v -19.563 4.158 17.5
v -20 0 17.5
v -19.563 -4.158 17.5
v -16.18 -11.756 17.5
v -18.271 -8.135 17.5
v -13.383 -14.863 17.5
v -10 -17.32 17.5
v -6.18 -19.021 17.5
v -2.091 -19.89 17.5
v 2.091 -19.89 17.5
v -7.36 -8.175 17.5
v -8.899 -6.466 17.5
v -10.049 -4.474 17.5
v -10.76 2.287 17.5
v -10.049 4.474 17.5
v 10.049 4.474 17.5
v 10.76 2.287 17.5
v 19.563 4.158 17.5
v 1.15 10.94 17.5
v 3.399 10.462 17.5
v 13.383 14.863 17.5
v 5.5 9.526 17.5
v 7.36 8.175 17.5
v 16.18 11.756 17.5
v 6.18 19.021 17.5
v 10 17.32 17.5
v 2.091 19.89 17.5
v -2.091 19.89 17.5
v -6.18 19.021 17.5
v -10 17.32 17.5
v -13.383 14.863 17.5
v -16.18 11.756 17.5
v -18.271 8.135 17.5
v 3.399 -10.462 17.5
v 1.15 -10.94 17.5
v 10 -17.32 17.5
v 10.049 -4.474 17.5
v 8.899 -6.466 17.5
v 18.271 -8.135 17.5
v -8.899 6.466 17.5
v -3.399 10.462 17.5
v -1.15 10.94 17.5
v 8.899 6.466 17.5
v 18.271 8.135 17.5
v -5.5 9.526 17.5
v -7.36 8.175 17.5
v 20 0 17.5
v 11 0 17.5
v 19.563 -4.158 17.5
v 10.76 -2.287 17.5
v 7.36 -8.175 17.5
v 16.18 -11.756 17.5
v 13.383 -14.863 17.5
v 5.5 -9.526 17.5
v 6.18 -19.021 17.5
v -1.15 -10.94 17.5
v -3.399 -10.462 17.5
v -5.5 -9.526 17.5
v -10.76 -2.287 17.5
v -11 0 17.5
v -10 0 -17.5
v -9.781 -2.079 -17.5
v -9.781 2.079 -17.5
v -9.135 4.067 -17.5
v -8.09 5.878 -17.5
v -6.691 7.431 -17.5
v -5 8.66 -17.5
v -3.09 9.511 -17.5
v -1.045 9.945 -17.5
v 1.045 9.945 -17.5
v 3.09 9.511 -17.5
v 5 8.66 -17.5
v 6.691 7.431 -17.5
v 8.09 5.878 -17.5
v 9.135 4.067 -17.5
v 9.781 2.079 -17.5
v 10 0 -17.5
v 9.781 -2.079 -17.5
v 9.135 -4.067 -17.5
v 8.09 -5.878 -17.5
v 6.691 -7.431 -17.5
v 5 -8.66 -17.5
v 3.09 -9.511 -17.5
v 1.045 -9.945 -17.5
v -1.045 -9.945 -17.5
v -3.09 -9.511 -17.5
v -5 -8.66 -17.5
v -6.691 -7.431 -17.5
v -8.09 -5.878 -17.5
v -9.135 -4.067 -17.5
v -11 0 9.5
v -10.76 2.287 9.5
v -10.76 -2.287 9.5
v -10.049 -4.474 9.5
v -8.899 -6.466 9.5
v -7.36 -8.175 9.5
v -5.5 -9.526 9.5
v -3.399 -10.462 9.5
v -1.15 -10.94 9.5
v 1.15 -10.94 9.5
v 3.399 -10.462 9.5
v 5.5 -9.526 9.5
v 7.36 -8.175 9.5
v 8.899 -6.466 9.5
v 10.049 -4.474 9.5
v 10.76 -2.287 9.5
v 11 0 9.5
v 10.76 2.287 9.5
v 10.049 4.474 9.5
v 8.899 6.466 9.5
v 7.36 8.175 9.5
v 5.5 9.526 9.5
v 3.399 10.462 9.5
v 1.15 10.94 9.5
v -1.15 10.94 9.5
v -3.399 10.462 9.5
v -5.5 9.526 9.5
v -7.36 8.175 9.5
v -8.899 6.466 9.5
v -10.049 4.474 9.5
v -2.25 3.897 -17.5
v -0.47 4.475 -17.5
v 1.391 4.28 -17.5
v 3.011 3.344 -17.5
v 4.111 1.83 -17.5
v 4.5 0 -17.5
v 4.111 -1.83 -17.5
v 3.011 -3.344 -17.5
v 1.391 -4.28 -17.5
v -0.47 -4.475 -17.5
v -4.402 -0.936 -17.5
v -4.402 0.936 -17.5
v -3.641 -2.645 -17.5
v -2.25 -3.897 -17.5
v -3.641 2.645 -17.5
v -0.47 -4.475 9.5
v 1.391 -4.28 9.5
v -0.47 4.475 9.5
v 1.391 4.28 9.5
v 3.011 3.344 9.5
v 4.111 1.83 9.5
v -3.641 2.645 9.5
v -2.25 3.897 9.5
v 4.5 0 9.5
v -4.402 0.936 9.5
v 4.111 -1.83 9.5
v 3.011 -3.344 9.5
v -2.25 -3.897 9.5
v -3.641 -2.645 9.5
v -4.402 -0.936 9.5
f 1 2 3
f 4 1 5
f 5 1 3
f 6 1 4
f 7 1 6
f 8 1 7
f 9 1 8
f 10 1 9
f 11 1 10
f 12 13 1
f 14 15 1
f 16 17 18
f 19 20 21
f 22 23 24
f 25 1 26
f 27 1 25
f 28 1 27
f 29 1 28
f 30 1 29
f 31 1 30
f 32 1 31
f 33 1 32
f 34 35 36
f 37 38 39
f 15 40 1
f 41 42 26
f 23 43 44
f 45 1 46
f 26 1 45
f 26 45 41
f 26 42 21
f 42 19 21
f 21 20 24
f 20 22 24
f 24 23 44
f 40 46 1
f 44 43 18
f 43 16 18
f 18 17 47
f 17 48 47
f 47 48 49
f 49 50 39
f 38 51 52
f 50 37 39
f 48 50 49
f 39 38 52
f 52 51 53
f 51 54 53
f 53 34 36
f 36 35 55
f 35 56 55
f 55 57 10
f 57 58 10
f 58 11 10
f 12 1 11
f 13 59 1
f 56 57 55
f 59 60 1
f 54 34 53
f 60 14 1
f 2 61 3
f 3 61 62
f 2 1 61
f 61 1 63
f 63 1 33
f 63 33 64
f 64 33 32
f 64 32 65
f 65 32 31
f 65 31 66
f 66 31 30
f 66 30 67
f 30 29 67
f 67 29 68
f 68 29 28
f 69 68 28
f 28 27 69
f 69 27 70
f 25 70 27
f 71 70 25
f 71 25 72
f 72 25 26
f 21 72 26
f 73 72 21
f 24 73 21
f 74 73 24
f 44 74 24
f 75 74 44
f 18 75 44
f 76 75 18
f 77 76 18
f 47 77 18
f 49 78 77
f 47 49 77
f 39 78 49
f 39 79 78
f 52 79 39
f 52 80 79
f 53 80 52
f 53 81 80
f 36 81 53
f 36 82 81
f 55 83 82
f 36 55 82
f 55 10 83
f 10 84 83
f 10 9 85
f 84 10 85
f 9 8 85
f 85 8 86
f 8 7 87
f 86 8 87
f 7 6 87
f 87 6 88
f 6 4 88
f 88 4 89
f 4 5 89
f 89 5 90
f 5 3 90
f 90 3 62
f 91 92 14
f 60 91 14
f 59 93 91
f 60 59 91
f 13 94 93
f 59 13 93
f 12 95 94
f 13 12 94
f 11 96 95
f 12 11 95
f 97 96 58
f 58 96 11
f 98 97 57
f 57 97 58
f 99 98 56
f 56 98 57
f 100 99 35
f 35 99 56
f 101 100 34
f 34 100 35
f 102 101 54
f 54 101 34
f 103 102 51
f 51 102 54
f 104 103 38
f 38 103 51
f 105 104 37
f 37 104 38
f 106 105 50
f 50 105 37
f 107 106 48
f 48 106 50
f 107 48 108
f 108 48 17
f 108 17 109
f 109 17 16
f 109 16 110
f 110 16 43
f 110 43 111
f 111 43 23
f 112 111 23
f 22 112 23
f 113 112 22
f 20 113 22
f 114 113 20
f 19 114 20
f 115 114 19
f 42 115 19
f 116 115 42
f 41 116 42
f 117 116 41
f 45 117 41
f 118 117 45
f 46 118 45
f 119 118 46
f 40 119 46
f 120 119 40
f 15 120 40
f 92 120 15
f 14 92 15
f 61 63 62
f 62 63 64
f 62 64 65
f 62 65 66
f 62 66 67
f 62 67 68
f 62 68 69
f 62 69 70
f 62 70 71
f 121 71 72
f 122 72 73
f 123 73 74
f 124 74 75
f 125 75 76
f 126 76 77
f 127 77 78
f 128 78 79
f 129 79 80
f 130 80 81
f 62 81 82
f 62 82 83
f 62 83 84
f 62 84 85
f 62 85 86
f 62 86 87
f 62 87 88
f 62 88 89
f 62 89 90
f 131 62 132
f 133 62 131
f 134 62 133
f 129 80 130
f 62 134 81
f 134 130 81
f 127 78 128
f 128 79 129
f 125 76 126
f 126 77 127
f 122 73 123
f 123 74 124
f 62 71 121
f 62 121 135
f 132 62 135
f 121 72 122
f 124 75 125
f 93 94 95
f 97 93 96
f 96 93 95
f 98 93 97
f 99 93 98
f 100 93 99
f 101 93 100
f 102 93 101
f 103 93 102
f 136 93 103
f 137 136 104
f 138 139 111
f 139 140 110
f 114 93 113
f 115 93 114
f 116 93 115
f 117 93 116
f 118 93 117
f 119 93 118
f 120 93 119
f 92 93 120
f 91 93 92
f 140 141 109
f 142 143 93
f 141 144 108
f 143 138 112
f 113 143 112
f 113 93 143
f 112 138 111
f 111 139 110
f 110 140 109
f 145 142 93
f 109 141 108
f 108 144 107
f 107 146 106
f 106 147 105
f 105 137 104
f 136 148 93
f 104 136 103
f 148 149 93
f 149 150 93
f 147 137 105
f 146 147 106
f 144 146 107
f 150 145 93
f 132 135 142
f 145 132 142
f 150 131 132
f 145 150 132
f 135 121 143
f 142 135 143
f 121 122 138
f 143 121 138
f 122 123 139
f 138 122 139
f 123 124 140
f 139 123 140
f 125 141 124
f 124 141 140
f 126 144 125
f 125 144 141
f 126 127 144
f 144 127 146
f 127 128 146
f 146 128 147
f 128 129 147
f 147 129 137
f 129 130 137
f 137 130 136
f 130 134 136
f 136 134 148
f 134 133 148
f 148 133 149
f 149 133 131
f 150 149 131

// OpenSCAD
rotate([180,0,0]){
difference(){
 cylinder(h=35,r1=40/2,r2=20/2,center=true);
 union(){
  cylinder(h=1000,r=9/2,center=true);
  translate([0,0,-(35/2-8/2)]){
   cylinder(h=8,r=22/2,center=true);
  }
 }
}
}
